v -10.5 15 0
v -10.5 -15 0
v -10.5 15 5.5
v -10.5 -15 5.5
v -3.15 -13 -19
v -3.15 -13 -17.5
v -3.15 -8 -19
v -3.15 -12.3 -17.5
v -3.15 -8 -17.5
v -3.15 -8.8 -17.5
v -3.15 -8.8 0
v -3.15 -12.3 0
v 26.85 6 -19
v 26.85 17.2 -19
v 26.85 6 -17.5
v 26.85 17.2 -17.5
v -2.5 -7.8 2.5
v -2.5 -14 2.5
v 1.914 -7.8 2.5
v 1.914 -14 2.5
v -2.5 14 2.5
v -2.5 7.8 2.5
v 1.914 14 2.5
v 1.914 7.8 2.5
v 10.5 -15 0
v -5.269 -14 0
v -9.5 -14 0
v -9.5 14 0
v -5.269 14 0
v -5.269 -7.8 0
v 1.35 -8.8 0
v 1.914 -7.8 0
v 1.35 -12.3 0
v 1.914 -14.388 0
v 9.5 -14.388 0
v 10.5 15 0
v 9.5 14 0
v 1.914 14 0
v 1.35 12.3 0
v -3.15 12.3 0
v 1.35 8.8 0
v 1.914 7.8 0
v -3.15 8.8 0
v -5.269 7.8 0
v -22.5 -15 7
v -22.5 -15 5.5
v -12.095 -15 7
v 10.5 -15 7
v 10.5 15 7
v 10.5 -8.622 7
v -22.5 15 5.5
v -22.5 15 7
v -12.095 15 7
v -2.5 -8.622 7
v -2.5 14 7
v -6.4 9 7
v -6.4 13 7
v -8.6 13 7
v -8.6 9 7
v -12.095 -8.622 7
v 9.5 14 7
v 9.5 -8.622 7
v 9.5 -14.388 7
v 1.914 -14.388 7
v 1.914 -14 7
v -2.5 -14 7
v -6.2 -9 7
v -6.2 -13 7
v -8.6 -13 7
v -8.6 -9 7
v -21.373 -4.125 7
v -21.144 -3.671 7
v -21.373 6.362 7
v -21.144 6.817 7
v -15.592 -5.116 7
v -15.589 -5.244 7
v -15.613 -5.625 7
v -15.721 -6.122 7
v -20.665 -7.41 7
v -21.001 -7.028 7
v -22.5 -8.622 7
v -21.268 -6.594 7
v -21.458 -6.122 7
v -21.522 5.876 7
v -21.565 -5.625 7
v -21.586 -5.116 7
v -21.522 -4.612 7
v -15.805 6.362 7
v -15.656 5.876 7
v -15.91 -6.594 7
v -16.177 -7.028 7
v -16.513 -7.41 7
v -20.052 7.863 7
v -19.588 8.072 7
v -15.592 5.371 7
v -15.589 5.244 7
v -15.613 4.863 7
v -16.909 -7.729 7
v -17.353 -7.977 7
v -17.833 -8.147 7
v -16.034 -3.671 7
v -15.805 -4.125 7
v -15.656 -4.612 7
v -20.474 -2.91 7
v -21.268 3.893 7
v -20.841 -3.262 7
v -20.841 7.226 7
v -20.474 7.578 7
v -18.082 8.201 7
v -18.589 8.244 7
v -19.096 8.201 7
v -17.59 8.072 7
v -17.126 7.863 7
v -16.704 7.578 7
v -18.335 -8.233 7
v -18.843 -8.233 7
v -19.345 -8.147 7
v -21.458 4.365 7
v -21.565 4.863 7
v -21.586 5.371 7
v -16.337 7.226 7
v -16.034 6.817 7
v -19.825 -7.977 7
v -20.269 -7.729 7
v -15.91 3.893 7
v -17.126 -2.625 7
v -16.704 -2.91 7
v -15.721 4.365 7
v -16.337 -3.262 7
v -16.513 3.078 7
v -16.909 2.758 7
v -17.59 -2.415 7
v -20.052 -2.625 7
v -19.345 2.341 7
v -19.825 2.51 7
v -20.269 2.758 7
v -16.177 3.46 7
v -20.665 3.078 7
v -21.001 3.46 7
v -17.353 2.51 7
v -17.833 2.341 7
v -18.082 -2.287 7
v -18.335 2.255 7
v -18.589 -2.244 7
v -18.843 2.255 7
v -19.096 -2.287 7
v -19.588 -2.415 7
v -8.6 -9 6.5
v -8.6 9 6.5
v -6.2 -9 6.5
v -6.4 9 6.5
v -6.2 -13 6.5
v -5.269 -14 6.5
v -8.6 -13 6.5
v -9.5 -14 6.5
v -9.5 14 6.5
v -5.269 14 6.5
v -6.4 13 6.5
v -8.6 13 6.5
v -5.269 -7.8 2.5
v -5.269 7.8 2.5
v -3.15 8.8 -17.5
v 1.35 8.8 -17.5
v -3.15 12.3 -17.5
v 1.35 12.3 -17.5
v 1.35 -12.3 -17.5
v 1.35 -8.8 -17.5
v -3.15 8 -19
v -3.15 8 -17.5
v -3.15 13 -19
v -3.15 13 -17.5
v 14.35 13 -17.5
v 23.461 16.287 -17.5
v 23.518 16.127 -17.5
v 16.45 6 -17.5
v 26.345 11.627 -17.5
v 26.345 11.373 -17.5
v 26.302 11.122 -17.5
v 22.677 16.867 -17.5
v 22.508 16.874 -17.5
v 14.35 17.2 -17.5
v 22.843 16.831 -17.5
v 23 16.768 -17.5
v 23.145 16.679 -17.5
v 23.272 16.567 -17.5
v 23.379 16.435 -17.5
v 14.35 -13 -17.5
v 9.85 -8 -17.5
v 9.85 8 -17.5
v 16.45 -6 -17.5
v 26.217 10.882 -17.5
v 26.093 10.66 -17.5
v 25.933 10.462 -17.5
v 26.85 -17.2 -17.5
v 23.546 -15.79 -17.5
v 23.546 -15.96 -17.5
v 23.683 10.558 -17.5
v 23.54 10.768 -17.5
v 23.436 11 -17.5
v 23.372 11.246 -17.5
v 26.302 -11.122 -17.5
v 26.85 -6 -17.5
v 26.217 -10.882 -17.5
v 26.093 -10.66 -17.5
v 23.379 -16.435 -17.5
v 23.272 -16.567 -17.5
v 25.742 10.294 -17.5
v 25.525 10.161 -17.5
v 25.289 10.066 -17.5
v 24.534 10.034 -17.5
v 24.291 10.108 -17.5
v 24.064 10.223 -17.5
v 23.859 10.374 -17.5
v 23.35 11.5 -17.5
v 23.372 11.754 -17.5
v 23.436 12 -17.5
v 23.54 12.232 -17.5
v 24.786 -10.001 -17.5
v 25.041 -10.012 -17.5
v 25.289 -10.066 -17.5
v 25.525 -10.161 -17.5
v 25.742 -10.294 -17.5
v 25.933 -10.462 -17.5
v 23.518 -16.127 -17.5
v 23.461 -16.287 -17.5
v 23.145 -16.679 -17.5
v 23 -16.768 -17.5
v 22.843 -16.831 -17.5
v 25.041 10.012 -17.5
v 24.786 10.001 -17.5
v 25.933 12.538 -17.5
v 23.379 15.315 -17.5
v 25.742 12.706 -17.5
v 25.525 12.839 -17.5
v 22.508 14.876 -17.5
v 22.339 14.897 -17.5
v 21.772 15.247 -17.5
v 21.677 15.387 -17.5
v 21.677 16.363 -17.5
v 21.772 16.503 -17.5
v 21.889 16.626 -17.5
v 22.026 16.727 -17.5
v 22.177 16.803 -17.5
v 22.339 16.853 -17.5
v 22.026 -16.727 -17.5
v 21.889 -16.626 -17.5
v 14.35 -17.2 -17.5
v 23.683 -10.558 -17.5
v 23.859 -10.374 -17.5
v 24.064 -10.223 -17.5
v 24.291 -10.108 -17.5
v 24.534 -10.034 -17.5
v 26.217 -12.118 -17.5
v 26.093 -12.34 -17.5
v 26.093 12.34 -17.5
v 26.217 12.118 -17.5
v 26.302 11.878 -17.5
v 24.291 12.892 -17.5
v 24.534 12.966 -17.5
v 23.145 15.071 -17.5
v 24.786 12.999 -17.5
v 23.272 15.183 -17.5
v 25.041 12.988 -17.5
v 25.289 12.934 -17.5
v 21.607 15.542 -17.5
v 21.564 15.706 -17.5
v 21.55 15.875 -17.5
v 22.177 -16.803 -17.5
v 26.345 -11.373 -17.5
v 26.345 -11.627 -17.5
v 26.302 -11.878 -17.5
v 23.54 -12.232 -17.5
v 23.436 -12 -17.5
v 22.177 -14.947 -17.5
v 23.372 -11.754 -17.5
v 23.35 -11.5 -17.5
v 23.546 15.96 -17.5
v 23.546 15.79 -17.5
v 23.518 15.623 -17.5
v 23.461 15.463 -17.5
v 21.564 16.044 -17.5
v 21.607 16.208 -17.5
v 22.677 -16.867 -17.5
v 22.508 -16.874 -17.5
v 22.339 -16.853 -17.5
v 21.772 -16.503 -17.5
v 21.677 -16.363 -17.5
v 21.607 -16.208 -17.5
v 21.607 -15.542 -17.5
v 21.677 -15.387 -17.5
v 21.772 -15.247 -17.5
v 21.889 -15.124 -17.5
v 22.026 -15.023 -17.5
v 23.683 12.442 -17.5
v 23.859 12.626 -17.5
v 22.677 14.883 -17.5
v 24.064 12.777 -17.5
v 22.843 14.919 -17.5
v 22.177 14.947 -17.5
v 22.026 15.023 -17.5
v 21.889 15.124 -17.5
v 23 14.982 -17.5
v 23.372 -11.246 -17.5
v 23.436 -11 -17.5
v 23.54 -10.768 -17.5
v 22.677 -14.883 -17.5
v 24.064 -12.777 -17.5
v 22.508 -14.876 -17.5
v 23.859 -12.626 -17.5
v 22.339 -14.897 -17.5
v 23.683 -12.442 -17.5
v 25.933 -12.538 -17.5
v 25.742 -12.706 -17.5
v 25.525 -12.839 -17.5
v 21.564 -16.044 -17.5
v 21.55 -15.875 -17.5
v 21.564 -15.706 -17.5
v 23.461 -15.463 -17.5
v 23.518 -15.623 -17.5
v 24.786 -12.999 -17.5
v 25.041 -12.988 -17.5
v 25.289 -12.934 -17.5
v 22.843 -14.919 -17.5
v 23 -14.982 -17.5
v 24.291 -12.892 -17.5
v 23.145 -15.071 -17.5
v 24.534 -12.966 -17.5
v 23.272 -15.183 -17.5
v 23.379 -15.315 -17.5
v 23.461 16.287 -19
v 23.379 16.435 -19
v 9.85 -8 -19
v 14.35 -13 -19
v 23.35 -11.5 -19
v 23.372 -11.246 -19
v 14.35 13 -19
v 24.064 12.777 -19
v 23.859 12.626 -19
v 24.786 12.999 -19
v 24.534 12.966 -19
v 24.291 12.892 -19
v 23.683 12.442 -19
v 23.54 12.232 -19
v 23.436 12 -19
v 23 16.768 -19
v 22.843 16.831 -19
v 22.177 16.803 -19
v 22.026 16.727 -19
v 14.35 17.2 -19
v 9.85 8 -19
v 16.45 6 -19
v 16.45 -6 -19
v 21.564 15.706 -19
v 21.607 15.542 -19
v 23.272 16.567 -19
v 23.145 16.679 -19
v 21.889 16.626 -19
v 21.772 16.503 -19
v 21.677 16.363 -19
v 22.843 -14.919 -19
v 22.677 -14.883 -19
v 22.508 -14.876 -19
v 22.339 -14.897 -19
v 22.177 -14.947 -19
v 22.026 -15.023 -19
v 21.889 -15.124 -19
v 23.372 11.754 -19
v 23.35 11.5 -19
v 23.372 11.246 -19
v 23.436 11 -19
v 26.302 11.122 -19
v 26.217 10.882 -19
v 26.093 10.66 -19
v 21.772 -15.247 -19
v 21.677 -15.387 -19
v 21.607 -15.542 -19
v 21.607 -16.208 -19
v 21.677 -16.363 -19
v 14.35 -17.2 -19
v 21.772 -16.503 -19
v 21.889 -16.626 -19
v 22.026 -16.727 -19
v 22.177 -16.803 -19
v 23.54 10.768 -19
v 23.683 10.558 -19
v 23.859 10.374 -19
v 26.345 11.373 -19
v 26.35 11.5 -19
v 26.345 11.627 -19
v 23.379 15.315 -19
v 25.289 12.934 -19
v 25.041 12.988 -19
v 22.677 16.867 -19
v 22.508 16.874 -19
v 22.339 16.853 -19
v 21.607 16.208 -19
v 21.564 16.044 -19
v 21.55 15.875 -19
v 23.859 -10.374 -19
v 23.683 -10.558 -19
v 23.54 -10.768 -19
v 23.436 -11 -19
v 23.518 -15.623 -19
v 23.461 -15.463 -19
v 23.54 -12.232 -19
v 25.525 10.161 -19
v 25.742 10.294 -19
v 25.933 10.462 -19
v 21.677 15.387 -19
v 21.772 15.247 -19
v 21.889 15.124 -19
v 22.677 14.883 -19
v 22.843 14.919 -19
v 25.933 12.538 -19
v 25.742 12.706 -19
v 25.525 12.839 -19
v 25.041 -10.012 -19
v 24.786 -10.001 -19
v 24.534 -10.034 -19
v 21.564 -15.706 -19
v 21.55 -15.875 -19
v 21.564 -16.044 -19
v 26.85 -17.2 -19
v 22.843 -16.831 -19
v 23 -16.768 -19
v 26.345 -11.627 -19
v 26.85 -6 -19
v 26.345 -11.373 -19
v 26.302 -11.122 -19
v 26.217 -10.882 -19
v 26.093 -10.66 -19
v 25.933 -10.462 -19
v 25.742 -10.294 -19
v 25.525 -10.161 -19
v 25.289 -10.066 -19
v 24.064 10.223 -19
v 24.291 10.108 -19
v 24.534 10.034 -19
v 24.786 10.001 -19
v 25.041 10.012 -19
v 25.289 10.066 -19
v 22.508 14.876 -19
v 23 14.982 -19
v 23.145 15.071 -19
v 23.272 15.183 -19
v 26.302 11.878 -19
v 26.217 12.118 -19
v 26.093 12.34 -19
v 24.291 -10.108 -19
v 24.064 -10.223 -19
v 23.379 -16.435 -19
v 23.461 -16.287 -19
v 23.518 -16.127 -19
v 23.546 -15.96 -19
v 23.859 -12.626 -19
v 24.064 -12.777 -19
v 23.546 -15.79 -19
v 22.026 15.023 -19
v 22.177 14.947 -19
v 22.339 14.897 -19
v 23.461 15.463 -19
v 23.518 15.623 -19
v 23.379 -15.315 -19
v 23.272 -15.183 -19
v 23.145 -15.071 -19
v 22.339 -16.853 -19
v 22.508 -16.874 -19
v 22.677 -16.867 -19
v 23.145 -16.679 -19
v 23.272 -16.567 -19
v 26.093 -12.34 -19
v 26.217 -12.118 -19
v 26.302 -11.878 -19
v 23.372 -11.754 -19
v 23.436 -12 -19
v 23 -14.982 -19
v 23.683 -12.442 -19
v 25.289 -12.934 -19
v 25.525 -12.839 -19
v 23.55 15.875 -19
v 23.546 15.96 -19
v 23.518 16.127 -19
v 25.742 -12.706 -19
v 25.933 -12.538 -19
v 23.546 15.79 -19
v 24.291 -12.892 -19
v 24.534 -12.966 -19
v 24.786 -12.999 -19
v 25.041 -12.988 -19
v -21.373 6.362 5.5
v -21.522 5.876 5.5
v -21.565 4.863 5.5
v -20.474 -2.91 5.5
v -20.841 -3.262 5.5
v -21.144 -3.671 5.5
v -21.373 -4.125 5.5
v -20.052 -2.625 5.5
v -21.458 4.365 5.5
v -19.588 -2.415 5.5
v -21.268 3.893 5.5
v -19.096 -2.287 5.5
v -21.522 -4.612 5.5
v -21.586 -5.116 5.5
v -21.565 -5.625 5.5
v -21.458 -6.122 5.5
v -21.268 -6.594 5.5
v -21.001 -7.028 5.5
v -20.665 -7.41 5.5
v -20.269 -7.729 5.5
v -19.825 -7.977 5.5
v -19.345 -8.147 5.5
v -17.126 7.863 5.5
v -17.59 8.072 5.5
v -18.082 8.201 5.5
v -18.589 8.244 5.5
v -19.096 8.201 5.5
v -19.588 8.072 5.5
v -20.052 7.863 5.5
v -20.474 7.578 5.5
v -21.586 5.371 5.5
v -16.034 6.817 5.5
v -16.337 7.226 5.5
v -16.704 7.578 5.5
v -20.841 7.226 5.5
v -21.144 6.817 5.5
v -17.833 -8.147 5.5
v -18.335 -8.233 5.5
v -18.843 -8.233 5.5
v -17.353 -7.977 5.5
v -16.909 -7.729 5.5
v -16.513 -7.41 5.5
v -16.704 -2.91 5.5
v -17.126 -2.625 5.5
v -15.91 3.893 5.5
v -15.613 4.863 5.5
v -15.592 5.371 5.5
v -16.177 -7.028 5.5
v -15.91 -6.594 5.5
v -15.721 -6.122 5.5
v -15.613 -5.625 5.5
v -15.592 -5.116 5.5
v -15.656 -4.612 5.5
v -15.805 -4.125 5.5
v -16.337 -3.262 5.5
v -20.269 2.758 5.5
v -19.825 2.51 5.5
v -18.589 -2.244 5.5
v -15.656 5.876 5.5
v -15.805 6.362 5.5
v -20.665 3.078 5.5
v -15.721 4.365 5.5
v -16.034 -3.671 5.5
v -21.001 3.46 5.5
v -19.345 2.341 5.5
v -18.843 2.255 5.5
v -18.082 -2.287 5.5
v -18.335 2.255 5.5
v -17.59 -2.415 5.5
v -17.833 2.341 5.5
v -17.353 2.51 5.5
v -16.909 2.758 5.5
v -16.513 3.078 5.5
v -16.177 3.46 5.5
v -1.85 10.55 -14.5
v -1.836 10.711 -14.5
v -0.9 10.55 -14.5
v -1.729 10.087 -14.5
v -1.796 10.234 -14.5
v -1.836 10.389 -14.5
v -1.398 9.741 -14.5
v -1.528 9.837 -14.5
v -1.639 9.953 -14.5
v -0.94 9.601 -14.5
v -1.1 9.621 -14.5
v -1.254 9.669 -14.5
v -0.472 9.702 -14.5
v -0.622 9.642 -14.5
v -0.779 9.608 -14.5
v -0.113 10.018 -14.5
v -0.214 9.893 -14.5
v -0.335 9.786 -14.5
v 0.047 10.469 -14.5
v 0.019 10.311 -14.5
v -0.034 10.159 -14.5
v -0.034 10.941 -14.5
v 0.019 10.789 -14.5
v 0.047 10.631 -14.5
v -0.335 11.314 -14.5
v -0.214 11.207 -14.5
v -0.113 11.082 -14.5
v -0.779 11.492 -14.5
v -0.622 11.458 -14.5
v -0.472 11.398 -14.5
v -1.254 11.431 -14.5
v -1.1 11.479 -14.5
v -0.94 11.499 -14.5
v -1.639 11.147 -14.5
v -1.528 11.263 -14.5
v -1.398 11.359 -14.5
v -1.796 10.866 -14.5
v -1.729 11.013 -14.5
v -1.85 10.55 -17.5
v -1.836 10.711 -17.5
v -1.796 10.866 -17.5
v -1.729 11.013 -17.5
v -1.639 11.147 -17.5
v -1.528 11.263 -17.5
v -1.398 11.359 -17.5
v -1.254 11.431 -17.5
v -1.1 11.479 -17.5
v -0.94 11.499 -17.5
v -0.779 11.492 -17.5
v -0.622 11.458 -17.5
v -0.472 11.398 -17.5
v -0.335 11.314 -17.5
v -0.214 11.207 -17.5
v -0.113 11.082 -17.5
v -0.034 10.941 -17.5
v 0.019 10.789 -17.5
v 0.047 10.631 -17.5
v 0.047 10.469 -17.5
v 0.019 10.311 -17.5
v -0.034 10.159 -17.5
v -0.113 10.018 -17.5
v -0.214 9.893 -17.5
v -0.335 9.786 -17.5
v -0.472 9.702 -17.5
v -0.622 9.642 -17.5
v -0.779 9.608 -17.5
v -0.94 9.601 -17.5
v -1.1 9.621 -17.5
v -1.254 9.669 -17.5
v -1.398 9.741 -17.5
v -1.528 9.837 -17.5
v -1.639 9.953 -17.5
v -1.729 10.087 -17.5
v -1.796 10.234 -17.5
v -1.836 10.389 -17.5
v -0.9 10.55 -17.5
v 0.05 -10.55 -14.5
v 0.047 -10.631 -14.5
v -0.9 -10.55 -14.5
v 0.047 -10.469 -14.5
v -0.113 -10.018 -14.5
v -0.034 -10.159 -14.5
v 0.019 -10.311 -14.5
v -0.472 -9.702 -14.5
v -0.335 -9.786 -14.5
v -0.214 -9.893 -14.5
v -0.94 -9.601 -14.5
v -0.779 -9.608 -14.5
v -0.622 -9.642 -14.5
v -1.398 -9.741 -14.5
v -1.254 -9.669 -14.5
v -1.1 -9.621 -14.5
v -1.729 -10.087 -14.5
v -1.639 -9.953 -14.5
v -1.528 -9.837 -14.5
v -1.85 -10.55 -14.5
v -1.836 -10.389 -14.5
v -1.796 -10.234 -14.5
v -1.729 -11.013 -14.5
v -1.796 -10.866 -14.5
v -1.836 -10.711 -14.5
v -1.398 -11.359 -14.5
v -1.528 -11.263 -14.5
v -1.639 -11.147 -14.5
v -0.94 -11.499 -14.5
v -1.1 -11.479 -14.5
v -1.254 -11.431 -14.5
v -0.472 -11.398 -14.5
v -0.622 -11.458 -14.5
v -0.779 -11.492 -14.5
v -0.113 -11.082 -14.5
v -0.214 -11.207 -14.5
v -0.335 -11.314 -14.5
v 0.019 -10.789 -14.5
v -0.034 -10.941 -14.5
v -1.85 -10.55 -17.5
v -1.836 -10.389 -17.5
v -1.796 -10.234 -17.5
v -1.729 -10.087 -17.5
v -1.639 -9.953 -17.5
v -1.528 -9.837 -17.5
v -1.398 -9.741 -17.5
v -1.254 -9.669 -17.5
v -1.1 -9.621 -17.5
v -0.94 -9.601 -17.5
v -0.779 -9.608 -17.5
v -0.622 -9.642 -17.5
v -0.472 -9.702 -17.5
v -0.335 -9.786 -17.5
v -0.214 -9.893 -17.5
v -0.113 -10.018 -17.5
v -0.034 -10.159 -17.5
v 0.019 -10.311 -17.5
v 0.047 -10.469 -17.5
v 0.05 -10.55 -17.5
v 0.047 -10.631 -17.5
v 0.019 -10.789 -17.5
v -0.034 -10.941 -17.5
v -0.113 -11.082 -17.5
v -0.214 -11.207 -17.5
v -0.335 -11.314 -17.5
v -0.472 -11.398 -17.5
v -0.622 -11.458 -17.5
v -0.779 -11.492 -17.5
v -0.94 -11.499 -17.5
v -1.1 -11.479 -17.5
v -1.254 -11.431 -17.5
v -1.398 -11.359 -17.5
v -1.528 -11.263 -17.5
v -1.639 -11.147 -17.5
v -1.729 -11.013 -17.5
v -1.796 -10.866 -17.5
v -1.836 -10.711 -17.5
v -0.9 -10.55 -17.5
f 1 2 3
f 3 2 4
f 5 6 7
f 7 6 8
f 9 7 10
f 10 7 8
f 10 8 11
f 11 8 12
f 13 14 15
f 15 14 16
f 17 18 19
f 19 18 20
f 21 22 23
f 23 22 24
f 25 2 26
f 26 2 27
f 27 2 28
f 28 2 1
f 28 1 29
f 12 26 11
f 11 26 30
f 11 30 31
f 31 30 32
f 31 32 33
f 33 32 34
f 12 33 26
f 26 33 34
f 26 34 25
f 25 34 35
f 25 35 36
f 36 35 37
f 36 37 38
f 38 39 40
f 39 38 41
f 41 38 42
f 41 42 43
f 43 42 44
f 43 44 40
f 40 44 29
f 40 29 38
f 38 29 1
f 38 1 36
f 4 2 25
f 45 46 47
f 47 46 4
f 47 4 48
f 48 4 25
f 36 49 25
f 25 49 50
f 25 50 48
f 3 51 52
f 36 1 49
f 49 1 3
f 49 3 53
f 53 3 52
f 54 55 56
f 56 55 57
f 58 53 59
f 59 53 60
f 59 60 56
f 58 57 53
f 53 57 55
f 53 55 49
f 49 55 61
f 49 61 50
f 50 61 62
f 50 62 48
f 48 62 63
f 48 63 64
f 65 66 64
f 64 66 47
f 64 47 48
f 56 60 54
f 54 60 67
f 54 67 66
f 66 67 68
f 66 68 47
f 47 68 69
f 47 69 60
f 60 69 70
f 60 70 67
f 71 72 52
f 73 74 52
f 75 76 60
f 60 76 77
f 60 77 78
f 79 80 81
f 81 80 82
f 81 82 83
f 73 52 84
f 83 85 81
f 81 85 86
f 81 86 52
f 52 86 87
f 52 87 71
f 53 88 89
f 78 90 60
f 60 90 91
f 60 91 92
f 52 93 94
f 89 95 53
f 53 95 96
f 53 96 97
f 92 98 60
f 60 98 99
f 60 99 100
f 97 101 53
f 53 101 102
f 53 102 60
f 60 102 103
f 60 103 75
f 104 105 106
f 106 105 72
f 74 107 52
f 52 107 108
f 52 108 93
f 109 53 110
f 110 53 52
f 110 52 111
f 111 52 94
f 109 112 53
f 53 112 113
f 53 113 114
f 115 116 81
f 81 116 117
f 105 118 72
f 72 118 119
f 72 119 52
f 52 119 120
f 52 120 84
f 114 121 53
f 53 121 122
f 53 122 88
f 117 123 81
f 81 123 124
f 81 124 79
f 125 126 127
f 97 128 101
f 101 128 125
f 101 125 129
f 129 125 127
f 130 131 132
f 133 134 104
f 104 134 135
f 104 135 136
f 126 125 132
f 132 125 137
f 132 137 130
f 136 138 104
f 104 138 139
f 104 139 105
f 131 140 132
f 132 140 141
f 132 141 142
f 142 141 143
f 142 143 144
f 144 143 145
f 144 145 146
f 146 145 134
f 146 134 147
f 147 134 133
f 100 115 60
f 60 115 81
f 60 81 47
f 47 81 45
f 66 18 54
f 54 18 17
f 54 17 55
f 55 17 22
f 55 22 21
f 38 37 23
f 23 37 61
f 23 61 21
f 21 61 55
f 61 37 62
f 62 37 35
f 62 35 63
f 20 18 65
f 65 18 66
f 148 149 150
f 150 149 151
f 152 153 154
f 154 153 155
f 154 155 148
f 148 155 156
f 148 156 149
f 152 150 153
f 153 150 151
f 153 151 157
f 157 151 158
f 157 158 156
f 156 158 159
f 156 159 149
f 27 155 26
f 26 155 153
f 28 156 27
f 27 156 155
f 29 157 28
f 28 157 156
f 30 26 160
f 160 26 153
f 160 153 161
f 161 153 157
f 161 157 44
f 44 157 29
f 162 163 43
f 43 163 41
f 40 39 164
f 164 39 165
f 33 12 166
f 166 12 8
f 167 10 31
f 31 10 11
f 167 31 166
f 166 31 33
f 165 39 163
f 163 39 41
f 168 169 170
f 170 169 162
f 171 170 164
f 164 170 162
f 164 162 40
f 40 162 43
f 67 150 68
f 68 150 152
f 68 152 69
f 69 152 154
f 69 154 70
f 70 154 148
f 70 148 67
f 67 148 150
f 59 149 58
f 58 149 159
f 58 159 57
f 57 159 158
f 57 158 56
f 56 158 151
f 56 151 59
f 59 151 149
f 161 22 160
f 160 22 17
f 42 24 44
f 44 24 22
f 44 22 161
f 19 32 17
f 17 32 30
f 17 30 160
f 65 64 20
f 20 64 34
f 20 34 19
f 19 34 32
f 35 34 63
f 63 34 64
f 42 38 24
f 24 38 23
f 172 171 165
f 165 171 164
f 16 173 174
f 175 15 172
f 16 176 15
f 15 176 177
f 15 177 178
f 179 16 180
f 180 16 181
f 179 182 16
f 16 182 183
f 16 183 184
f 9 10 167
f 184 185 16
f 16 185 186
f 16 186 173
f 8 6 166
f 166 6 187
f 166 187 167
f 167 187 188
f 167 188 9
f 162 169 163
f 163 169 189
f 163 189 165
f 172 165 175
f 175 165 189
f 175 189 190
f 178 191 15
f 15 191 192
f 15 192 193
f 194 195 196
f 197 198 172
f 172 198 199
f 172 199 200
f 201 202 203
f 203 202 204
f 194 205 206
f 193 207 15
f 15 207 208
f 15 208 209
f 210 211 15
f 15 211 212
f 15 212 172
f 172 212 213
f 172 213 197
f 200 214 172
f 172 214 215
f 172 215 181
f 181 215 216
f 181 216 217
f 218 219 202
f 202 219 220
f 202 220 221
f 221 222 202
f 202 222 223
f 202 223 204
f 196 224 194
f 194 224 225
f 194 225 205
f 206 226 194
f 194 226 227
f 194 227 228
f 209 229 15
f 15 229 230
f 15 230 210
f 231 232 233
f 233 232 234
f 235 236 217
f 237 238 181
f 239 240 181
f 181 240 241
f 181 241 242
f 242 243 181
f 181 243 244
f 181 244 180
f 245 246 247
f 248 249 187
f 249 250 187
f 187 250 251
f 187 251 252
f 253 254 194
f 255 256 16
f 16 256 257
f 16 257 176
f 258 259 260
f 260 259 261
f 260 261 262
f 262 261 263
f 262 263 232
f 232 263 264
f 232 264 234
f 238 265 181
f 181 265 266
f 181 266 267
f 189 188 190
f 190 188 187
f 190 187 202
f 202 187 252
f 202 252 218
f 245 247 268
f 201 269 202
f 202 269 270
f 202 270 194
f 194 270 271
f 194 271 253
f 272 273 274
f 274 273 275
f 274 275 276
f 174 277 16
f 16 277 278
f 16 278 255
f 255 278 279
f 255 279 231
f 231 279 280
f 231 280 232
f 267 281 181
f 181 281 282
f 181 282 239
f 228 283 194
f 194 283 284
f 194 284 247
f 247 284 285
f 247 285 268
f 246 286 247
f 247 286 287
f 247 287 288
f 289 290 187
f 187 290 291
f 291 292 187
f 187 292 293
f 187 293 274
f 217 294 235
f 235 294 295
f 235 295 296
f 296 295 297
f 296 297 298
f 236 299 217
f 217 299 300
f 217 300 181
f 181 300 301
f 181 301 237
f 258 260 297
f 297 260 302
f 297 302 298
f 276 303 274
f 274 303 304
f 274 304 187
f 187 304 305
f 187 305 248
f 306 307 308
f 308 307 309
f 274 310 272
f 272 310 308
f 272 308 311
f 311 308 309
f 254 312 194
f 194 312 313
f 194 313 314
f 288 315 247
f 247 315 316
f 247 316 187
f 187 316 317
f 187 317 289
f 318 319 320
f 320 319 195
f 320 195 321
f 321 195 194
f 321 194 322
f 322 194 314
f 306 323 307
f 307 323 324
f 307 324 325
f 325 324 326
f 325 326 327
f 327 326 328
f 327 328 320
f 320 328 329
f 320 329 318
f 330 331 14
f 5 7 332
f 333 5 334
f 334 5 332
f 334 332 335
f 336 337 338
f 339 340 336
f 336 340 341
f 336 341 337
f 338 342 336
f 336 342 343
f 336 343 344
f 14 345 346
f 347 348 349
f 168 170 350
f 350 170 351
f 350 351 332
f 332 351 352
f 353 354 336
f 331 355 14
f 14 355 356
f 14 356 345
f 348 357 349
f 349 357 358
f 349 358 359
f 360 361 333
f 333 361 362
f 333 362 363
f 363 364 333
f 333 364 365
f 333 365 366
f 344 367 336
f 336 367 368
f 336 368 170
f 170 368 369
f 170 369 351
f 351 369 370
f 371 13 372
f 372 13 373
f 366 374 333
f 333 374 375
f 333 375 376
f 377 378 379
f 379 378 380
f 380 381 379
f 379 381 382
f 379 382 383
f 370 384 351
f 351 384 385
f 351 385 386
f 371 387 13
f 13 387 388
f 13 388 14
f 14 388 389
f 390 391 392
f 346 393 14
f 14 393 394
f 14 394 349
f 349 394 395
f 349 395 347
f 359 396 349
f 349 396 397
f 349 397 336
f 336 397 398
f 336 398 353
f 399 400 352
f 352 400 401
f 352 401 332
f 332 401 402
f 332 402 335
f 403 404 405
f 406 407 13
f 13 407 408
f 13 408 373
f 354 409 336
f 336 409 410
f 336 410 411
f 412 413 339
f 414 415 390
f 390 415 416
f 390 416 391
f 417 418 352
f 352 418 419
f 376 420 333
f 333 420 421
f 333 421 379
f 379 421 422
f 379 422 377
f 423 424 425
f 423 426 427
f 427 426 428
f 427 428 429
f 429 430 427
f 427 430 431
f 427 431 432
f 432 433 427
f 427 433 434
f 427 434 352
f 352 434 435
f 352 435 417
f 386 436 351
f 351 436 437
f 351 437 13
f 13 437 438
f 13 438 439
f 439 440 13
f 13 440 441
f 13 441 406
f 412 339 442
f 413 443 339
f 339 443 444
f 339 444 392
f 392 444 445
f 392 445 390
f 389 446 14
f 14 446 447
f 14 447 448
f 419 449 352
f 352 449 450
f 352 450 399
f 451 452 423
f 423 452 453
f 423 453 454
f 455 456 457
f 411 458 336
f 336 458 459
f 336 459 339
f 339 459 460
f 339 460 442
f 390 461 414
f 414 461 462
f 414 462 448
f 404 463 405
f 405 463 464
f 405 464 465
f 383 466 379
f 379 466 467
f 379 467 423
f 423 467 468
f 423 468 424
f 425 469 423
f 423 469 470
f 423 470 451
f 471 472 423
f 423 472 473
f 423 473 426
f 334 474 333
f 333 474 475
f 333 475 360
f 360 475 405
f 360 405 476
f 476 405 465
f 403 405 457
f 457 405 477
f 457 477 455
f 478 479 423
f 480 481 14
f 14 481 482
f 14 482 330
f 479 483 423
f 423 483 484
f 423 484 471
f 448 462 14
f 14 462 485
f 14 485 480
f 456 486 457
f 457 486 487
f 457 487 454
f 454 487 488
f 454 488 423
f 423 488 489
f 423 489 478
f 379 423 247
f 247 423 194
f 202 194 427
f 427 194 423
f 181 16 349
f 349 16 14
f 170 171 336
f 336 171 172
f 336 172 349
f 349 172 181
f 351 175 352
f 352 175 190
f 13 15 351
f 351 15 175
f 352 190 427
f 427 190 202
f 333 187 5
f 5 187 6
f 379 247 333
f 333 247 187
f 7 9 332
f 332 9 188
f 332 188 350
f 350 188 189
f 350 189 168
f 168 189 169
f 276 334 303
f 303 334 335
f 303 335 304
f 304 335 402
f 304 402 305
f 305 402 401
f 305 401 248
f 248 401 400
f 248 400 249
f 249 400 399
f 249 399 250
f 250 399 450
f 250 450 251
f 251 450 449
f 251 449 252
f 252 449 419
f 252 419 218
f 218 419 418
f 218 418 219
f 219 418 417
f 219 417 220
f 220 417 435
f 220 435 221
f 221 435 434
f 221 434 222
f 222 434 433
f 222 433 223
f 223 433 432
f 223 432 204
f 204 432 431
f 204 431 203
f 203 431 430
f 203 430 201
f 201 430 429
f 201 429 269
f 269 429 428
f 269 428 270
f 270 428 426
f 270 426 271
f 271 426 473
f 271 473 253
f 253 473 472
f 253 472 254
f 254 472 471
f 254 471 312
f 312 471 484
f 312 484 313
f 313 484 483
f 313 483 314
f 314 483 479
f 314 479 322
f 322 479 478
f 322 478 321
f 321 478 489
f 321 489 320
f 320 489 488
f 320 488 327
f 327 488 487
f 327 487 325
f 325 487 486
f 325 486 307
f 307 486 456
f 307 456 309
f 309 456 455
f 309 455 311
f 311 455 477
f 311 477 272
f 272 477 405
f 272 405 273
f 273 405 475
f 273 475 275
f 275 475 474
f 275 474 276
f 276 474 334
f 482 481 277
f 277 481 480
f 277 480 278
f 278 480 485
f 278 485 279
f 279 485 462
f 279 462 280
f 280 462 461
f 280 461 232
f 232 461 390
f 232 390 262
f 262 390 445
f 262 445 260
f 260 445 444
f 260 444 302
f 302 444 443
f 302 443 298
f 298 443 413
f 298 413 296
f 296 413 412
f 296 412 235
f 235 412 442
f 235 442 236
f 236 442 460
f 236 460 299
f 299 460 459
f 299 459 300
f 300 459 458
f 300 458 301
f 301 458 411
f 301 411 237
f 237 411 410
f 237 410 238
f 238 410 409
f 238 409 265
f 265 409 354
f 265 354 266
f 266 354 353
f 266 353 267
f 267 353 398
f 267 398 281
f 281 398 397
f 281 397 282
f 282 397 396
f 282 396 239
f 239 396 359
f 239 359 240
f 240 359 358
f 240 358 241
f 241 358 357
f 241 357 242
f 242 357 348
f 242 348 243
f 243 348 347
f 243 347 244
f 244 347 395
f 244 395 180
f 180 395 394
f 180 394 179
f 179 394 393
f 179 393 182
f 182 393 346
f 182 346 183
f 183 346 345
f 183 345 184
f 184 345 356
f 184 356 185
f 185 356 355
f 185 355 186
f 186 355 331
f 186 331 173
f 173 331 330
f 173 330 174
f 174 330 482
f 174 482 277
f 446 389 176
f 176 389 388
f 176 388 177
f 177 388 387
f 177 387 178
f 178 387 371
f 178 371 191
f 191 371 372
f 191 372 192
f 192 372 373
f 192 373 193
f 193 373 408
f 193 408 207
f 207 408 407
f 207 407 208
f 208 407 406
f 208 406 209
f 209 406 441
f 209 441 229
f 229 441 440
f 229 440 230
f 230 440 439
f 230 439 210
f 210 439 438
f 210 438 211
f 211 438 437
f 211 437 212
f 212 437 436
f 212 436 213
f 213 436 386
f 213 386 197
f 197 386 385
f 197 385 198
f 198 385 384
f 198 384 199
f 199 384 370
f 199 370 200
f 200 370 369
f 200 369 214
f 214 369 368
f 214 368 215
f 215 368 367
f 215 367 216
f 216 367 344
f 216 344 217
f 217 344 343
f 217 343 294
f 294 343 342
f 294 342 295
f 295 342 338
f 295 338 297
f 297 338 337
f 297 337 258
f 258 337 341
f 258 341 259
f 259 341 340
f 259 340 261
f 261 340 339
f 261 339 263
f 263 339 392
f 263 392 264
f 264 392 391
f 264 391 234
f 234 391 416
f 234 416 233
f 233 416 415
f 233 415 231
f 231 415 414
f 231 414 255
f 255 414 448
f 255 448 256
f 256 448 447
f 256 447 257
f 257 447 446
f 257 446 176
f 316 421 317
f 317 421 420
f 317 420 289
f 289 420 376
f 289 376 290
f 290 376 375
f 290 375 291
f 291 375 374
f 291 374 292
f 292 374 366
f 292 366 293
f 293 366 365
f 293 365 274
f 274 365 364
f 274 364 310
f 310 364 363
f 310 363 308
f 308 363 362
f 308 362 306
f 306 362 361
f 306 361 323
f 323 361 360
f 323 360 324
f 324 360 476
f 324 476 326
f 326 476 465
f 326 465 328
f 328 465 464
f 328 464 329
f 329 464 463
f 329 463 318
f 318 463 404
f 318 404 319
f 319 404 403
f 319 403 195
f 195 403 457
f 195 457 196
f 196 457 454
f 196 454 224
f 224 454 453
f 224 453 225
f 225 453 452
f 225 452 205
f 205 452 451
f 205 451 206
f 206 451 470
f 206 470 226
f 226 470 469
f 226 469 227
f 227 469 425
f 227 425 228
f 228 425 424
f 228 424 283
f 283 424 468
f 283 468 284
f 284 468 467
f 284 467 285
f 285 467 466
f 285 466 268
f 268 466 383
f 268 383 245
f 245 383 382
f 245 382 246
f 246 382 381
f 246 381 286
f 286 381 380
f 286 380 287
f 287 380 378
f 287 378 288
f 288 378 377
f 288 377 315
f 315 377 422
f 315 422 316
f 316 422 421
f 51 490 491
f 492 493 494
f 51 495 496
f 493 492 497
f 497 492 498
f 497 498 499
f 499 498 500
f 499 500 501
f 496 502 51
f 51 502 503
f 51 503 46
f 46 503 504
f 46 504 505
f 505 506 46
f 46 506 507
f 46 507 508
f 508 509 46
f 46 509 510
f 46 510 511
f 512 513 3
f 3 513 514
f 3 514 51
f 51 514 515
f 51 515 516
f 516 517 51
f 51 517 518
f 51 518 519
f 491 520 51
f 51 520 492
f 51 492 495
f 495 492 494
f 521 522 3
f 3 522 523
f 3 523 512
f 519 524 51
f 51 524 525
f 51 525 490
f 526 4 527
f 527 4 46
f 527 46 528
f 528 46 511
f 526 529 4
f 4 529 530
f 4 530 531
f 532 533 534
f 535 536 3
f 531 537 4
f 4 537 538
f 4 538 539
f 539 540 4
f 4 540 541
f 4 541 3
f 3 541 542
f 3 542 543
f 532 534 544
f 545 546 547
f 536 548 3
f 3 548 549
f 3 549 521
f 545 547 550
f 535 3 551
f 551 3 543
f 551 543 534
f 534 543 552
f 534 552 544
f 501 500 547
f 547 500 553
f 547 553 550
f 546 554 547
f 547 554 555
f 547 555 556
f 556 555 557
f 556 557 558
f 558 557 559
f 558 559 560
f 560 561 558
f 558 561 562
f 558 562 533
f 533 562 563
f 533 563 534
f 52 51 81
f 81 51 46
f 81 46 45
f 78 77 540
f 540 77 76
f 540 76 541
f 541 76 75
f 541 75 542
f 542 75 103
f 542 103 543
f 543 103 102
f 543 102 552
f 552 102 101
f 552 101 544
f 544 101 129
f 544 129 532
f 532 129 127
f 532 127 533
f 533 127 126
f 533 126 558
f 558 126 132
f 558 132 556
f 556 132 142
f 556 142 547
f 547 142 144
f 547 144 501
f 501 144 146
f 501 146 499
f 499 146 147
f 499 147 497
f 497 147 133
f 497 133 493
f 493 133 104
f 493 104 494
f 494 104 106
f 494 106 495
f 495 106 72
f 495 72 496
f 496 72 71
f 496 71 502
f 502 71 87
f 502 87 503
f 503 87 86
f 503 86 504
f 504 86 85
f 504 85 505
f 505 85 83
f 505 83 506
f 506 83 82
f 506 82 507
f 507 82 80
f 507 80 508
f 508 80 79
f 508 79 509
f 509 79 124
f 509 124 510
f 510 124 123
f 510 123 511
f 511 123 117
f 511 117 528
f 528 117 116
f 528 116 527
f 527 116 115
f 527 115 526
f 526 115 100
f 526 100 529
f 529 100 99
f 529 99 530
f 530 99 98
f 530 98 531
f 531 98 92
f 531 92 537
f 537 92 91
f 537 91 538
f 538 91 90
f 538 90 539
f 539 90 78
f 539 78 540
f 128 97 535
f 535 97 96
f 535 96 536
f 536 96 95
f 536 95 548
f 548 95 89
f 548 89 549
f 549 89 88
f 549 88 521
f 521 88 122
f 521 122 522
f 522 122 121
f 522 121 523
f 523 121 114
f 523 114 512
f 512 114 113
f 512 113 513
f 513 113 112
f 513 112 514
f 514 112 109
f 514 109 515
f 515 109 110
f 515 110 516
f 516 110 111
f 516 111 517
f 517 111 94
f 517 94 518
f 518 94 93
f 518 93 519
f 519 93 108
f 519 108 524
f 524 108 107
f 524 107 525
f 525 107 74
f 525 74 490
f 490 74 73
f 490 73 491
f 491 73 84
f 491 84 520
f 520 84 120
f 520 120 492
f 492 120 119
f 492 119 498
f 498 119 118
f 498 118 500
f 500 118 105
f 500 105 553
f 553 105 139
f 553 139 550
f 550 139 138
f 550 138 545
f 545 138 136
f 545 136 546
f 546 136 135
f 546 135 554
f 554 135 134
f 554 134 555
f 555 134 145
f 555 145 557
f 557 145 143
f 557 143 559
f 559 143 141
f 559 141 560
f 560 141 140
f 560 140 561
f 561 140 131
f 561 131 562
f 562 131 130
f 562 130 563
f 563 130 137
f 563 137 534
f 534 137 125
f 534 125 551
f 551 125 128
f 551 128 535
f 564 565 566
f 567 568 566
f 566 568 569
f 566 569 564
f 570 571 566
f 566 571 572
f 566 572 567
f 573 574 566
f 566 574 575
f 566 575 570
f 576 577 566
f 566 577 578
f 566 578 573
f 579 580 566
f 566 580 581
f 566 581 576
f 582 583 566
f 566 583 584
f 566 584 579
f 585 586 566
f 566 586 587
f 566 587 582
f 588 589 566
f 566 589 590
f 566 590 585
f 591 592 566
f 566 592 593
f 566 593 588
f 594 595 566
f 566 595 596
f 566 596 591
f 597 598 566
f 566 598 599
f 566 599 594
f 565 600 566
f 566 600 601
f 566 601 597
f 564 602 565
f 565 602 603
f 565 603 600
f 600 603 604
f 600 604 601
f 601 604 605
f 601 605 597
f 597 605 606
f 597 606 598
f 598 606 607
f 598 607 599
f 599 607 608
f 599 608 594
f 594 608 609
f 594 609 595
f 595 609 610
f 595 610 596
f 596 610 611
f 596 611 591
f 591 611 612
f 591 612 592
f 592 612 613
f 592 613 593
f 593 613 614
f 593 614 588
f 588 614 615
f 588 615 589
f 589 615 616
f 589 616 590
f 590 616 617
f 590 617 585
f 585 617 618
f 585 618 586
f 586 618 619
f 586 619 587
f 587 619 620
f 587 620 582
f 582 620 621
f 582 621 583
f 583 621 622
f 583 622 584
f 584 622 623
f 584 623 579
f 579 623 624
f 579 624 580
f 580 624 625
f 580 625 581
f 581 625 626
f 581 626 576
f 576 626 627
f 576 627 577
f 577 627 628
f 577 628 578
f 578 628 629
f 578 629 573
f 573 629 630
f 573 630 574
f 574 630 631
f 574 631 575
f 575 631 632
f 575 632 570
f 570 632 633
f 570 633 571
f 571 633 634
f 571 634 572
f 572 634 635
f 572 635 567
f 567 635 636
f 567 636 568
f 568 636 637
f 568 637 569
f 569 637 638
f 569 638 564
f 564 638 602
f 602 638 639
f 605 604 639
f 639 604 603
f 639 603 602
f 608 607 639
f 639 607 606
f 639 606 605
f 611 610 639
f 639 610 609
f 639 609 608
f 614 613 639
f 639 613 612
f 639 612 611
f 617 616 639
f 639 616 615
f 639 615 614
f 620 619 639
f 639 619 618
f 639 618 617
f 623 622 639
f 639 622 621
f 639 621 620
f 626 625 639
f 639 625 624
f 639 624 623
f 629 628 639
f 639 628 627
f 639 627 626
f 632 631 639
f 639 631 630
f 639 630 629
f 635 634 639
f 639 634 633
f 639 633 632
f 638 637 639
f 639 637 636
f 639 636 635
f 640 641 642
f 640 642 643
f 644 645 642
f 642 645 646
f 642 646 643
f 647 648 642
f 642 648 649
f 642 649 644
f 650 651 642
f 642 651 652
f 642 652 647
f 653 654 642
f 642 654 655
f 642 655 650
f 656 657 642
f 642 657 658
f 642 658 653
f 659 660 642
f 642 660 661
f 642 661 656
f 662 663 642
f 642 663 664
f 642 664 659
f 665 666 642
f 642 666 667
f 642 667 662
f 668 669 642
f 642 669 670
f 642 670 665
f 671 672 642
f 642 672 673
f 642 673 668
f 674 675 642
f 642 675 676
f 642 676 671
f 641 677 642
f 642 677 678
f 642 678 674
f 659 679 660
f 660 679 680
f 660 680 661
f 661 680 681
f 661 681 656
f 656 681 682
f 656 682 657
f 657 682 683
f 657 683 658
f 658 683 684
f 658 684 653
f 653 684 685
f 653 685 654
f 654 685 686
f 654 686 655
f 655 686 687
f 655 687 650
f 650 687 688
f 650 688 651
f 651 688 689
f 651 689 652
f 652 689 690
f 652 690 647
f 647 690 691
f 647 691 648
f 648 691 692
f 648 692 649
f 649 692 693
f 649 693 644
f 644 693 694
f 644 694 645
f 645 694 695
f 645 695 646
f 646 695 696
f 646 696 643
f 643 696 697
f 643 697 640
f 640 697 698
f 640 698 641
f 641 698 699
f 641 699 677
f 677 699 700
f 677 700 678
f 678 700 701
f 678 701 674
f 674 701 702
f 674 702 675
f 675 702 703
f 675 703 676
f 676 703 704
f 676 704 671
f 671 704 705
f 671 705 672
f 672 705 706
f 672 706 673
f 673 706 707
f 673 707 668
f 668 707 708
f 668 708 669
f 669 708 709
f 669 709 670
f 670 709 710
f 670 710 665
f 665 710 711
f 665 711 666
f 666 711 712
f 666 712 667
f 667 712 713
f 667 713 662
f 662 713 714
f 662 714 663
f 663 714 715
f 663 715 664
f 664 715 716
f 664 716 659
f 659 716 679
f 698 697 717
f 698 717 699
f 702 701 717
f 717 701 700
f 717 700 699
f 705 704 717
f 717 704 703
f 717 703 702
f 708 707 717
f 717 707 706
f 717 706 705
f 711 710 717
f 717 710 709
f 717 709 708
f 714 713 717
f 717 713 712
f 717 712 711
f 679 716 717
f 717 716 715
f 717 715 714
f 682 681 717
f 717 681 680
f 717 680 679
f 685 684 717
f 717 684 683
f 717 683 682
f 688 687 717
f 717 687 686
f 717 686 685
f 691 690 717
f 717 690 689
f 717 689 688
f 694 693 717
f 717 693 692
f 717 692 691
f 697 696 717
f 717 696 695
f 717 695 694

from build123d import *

# Parameters (mm, degrees)
SKETCH2_W           = 21
SKETCH2_H           = 30
BOSS_EXTRUDE1_DEPTH = 7
SKETCH3_W           = 12
SKETCH3_H           = 28
CUT_EXTRUDE1_DEPTH  = 4.5
SKETCH4_W           = 4.231229846
SKETCH4_H           = 28
CUT_EXTRUDE2_DEPTH  = 6.5
SKETCH8_W           = 7.5
SKETCH8_H           = 3.5
BOSS_EXTRUDE3_DEPTH = 17.5
SKETCH10_R          = 0.95
CUT_EXTRUDE4_DEPTH  = 3
SKETCH11_W          = 1.35
SKETCH11_H          = 3.5
SKETCH11_W_2        = 1.65
CUT_EXTRUDE5_DEPTH  = 17.5
SKETCH7_W           = 2.2
SKETCH7_H           = 4
SKETCH7_W_2         = 2.4
CUT_EXTRUDE6_DEPTH  = 2
SKETCH13_W          = 14.768770154
SKETCH13_H          = 15.6
CUT_EXTRUDE8_DEPTH  = 2.5
SKETCH14_W          = 7.585503546
SKETCH14_H          = 28.388252519
CUT_EXTRUDE9_DEPTH  = 10
SKETCH15_W          = 30
SKETCH15_H          = 34.4
BOSS_EXTRUDE4_DEPTH = 1.5
SKETCH16_W          = 13
SKETCH16_H          = 16
SKETCH16_W_2        = 17.5
SKETCH16_H_2        = 4.2
SKETCH16_W_3        = 10.4
SKETCH16_H_3        = 12
CUT_EXTRUDE10_DEPTH = 2
SKETCH17_R          = 1
SKETCH17_R_2        = 1.5
CUT_EXTRUDE11_DEPTH = 2
SKETCH18_W          = 1.5
SKETCH18_H          = 30
BOSS_EXTRUDE5_DEPTH = 12
SKETCH19_R          = 3
CUT_EXTRUDE12_DEPTH = 10


with BuildPart() as part:
    # Sketch2 → Boss-Extrude1 (new body)
    with BuildSketch(Plane.XY):
        Rectangle(SKETCH2_W, SKETCH2_H)
    extrude(amount=BOSS_EXTRUDE1_DEPTH)

    # Sketch3 → Cut-Extrude1 (cut)
    with BuildSketch(Plane.XY.offset(7)):
        with Locations((3.5, 0)):
            Rectangle(SKETCH3_W, SKETCH3_H)
    extrude(amount=-CUT_EXTRUDE1_DEPTH, mode=Mode.SUBTRACT)

    # Sketch4 → Cut-Extrude2 (cut)
    with BuildSketch(Plane(origin=(0, 0, 0), x_dir=(-1, 0, 0), z_dir=(0, 0, -1))):
        with Locations((7.384385077, 0)):
            Rectangle(SKETCH4_W, SKETCH4_H)
    extrude(amount=-CUT_EXTRUDE2_DEPTH, mode=Mode.SUBTRACT)

    # Sketch8 → Boss-Extrude3 (add)
    with BuildSketch(Plane(origin=(0, 0, 0), x_dir=(-1, 0, 0), z_dir=(0, 0, -1))):
        with Locations((0.75, 10.55)):
            Rectangle(SKETCH8_W, SKETCH8_H)
        with Locations((0.75, -10.55)):
            Rectangle(SKETCH8_W, SKETCH8_H)
    extrude(amount=BOSS_EXTRUDE3_DEPTH)

    # Sketch10 → Cut-Extrude4 (cut)
    with BuildSketch(Plane(origin=(0, 0, -17.5), x_dir=(-1, 0, 0), z_dir=(0, 0, -1))):
        with Locations((0.9, 10.55)):
            Circle(SKETCH10_R)
        with Locations(Location((0.9, -10.55, 0), (0, 0, 180))):
            Circle(SKETCH10_R)
    extrude(amount=-CUT_EXTRUDE4_DEPTH, mode=Mode.SUBTRACT)

    # Sketch11 → Cut-Extrude5 (cut)
    with BuildSketch(Plane(origin=(0, 0, -17.5), x_dir=(-1, 0, 0), z_dir=(0, 0, -1))):
        with Locations((3.825, -10.55)):
            Rectangle(SKETCH11_W, SKETCH11_H)
        with Locations((-2.175, -10.55)):
            Rectangle(SKETCH11_W_2, SKETCH11_H)
        with Locations((3.825, 10.55)):
            Rectangle(SKETCH11_W, SKETCH11_H)
        with Locations((-2.175, 10.55)):
            Rectangle(SKETCH11_W_2, SKETCH11_H)
    extrude(amount=-CUT_EXTRUDE5_DEPTH, mode=Mode.SUBTRACT)

    # Sketch7 → Cut-Extrude6 (cut)
    with BuildSketch(Plane.XY.offset(7)):
        with Locations((-7.5, 11)):
            Rectangle(SKETCH7_W, SKETCH7_H)
        with Locations((-7.4, -11)):
            Rectangle(SKETCH7_W_2, SKETCH7_H)
    extrude(amount=-CUT_EXTRUDE6_DEPTH, mode=Mode.SUBTRACT)

    # Sketch13 → Cut-Extrude8 (cut)
    with BuildSketch(Plane(origin=(0, 0, 0), x_dir=(-1, 0, 0), z_dir=(0, 0, -1))):
        with Locations((-2.115614923, 0)):
            Rectangle(SKETCH13_W, SKETCH13_H)
    extrude(amount=-CUT_EXTRUDE8_DEPTH, mode=Mode.SUBTRACT)

    # Sketch14 → Cut-Extrude9 (cut)
    with BuildSketch(Plane(origin=(0, 0, 0), x_dir=(-1, 0, 0), z_dir=(0, 0, -1))):
        with Locations((-5.707248227, -0.19412626)):
            Rectangle(SKETCH14_W, SKETCH14_H)
    extrude(amount=-CUT_EXTRUDE9_DEPTH, mode=Mode.SUBTRACT)

    # Sketch15 → Boss-Extrude4 (add)
    with BuildSketch(Plane(origin=(0, 0, -17.5), x_dir=(-1, 0, 0), z_dir=(0, 0, -1))):
        with Locations((-11.85, 0)):
            Rectangle(SKETCH15_W, SKETCH15_H)
    extrude(amount=BOSS_EXTRUDE4_DEPTH)

    # Sketch16 → Cut-Extrude10 (cut)
    with BuildSketch(Plane(origin=(0, 0, -19), x_dir=(-1, 0, 0), z_dir=(0, 0, -1))):
        with Locations((-3.35, 0)):
            Rectangle(SKETCH16_W, SKETCH16_H)
        with Locations((-5.6, -15.1)):
            Rectangle(SKETCH16_W_2, SKETCH16_H_2)
        with Locations((-5.6, 15.1)):
            Rectangle(SKETCH16_W_2, SKETCH16_H_2)
        with Locations((-21.65, 0)):
            Rectangle(SKETCH16_W_3, SKETCH16_H_3)
    extrude(amount=-CUT_EXTRUDE10_DEPTH, mode=Mode.SUBTRACT)

    # Sketch17 → Cut-Extrude11 (cut)
    with BuildSketch(Plane(origin=(0, 0, -19), x_dir=(-1, 0, 0), z_dir=(0, 0, -1))):
        with Locations((-22.55, -15.875)):
            Circle(SKETCH17_R)
        with Locations((-24.85, -11.5)):
            Circle(SKETCH17_R_2)
        with Locations((-22.55, 15.875)):
            Circle(SKETCH17_R)
        with Locations((-24.85, 11.5)):
            Circle(SKETCH17_R_2)
    extrude(amount=-CUT_EXTRUDE11_DEPTH, mode=Mode.SUBTRACT)

    # Sketch18 → Boss-Extrude5 (add)
    with BuildSketch(Plane.ZY.offset(10.5)):
        with Locations((6.25, 0)):
            Rectangle(SKETCH18_W, SKETCH18_H)
    extrude(amount=BOSS_EXTRUDE5_DEPTH)

    # Sketch19 → Cut-Extrude12 (cut)
    with BuildSketch(Plane(origin=(0, 0, 5.5), x_dir=(-1, 0, 0), z_dir=(0, 0, -1))):
        with Locations(Location((18.589045846, 5.243756264, 0), (0, 0, 90))):
            Circle(SKETCH19_R)
        with Locations(Location((18.589045846, -5.243756264, 0), (0, 0, 90))):
            Circle(SKETCH19_R)
    extrude(amount=-CUT_EXTRUDE12_DEPTH, mode=Mode.SUBTRACT)


solid = part.part
